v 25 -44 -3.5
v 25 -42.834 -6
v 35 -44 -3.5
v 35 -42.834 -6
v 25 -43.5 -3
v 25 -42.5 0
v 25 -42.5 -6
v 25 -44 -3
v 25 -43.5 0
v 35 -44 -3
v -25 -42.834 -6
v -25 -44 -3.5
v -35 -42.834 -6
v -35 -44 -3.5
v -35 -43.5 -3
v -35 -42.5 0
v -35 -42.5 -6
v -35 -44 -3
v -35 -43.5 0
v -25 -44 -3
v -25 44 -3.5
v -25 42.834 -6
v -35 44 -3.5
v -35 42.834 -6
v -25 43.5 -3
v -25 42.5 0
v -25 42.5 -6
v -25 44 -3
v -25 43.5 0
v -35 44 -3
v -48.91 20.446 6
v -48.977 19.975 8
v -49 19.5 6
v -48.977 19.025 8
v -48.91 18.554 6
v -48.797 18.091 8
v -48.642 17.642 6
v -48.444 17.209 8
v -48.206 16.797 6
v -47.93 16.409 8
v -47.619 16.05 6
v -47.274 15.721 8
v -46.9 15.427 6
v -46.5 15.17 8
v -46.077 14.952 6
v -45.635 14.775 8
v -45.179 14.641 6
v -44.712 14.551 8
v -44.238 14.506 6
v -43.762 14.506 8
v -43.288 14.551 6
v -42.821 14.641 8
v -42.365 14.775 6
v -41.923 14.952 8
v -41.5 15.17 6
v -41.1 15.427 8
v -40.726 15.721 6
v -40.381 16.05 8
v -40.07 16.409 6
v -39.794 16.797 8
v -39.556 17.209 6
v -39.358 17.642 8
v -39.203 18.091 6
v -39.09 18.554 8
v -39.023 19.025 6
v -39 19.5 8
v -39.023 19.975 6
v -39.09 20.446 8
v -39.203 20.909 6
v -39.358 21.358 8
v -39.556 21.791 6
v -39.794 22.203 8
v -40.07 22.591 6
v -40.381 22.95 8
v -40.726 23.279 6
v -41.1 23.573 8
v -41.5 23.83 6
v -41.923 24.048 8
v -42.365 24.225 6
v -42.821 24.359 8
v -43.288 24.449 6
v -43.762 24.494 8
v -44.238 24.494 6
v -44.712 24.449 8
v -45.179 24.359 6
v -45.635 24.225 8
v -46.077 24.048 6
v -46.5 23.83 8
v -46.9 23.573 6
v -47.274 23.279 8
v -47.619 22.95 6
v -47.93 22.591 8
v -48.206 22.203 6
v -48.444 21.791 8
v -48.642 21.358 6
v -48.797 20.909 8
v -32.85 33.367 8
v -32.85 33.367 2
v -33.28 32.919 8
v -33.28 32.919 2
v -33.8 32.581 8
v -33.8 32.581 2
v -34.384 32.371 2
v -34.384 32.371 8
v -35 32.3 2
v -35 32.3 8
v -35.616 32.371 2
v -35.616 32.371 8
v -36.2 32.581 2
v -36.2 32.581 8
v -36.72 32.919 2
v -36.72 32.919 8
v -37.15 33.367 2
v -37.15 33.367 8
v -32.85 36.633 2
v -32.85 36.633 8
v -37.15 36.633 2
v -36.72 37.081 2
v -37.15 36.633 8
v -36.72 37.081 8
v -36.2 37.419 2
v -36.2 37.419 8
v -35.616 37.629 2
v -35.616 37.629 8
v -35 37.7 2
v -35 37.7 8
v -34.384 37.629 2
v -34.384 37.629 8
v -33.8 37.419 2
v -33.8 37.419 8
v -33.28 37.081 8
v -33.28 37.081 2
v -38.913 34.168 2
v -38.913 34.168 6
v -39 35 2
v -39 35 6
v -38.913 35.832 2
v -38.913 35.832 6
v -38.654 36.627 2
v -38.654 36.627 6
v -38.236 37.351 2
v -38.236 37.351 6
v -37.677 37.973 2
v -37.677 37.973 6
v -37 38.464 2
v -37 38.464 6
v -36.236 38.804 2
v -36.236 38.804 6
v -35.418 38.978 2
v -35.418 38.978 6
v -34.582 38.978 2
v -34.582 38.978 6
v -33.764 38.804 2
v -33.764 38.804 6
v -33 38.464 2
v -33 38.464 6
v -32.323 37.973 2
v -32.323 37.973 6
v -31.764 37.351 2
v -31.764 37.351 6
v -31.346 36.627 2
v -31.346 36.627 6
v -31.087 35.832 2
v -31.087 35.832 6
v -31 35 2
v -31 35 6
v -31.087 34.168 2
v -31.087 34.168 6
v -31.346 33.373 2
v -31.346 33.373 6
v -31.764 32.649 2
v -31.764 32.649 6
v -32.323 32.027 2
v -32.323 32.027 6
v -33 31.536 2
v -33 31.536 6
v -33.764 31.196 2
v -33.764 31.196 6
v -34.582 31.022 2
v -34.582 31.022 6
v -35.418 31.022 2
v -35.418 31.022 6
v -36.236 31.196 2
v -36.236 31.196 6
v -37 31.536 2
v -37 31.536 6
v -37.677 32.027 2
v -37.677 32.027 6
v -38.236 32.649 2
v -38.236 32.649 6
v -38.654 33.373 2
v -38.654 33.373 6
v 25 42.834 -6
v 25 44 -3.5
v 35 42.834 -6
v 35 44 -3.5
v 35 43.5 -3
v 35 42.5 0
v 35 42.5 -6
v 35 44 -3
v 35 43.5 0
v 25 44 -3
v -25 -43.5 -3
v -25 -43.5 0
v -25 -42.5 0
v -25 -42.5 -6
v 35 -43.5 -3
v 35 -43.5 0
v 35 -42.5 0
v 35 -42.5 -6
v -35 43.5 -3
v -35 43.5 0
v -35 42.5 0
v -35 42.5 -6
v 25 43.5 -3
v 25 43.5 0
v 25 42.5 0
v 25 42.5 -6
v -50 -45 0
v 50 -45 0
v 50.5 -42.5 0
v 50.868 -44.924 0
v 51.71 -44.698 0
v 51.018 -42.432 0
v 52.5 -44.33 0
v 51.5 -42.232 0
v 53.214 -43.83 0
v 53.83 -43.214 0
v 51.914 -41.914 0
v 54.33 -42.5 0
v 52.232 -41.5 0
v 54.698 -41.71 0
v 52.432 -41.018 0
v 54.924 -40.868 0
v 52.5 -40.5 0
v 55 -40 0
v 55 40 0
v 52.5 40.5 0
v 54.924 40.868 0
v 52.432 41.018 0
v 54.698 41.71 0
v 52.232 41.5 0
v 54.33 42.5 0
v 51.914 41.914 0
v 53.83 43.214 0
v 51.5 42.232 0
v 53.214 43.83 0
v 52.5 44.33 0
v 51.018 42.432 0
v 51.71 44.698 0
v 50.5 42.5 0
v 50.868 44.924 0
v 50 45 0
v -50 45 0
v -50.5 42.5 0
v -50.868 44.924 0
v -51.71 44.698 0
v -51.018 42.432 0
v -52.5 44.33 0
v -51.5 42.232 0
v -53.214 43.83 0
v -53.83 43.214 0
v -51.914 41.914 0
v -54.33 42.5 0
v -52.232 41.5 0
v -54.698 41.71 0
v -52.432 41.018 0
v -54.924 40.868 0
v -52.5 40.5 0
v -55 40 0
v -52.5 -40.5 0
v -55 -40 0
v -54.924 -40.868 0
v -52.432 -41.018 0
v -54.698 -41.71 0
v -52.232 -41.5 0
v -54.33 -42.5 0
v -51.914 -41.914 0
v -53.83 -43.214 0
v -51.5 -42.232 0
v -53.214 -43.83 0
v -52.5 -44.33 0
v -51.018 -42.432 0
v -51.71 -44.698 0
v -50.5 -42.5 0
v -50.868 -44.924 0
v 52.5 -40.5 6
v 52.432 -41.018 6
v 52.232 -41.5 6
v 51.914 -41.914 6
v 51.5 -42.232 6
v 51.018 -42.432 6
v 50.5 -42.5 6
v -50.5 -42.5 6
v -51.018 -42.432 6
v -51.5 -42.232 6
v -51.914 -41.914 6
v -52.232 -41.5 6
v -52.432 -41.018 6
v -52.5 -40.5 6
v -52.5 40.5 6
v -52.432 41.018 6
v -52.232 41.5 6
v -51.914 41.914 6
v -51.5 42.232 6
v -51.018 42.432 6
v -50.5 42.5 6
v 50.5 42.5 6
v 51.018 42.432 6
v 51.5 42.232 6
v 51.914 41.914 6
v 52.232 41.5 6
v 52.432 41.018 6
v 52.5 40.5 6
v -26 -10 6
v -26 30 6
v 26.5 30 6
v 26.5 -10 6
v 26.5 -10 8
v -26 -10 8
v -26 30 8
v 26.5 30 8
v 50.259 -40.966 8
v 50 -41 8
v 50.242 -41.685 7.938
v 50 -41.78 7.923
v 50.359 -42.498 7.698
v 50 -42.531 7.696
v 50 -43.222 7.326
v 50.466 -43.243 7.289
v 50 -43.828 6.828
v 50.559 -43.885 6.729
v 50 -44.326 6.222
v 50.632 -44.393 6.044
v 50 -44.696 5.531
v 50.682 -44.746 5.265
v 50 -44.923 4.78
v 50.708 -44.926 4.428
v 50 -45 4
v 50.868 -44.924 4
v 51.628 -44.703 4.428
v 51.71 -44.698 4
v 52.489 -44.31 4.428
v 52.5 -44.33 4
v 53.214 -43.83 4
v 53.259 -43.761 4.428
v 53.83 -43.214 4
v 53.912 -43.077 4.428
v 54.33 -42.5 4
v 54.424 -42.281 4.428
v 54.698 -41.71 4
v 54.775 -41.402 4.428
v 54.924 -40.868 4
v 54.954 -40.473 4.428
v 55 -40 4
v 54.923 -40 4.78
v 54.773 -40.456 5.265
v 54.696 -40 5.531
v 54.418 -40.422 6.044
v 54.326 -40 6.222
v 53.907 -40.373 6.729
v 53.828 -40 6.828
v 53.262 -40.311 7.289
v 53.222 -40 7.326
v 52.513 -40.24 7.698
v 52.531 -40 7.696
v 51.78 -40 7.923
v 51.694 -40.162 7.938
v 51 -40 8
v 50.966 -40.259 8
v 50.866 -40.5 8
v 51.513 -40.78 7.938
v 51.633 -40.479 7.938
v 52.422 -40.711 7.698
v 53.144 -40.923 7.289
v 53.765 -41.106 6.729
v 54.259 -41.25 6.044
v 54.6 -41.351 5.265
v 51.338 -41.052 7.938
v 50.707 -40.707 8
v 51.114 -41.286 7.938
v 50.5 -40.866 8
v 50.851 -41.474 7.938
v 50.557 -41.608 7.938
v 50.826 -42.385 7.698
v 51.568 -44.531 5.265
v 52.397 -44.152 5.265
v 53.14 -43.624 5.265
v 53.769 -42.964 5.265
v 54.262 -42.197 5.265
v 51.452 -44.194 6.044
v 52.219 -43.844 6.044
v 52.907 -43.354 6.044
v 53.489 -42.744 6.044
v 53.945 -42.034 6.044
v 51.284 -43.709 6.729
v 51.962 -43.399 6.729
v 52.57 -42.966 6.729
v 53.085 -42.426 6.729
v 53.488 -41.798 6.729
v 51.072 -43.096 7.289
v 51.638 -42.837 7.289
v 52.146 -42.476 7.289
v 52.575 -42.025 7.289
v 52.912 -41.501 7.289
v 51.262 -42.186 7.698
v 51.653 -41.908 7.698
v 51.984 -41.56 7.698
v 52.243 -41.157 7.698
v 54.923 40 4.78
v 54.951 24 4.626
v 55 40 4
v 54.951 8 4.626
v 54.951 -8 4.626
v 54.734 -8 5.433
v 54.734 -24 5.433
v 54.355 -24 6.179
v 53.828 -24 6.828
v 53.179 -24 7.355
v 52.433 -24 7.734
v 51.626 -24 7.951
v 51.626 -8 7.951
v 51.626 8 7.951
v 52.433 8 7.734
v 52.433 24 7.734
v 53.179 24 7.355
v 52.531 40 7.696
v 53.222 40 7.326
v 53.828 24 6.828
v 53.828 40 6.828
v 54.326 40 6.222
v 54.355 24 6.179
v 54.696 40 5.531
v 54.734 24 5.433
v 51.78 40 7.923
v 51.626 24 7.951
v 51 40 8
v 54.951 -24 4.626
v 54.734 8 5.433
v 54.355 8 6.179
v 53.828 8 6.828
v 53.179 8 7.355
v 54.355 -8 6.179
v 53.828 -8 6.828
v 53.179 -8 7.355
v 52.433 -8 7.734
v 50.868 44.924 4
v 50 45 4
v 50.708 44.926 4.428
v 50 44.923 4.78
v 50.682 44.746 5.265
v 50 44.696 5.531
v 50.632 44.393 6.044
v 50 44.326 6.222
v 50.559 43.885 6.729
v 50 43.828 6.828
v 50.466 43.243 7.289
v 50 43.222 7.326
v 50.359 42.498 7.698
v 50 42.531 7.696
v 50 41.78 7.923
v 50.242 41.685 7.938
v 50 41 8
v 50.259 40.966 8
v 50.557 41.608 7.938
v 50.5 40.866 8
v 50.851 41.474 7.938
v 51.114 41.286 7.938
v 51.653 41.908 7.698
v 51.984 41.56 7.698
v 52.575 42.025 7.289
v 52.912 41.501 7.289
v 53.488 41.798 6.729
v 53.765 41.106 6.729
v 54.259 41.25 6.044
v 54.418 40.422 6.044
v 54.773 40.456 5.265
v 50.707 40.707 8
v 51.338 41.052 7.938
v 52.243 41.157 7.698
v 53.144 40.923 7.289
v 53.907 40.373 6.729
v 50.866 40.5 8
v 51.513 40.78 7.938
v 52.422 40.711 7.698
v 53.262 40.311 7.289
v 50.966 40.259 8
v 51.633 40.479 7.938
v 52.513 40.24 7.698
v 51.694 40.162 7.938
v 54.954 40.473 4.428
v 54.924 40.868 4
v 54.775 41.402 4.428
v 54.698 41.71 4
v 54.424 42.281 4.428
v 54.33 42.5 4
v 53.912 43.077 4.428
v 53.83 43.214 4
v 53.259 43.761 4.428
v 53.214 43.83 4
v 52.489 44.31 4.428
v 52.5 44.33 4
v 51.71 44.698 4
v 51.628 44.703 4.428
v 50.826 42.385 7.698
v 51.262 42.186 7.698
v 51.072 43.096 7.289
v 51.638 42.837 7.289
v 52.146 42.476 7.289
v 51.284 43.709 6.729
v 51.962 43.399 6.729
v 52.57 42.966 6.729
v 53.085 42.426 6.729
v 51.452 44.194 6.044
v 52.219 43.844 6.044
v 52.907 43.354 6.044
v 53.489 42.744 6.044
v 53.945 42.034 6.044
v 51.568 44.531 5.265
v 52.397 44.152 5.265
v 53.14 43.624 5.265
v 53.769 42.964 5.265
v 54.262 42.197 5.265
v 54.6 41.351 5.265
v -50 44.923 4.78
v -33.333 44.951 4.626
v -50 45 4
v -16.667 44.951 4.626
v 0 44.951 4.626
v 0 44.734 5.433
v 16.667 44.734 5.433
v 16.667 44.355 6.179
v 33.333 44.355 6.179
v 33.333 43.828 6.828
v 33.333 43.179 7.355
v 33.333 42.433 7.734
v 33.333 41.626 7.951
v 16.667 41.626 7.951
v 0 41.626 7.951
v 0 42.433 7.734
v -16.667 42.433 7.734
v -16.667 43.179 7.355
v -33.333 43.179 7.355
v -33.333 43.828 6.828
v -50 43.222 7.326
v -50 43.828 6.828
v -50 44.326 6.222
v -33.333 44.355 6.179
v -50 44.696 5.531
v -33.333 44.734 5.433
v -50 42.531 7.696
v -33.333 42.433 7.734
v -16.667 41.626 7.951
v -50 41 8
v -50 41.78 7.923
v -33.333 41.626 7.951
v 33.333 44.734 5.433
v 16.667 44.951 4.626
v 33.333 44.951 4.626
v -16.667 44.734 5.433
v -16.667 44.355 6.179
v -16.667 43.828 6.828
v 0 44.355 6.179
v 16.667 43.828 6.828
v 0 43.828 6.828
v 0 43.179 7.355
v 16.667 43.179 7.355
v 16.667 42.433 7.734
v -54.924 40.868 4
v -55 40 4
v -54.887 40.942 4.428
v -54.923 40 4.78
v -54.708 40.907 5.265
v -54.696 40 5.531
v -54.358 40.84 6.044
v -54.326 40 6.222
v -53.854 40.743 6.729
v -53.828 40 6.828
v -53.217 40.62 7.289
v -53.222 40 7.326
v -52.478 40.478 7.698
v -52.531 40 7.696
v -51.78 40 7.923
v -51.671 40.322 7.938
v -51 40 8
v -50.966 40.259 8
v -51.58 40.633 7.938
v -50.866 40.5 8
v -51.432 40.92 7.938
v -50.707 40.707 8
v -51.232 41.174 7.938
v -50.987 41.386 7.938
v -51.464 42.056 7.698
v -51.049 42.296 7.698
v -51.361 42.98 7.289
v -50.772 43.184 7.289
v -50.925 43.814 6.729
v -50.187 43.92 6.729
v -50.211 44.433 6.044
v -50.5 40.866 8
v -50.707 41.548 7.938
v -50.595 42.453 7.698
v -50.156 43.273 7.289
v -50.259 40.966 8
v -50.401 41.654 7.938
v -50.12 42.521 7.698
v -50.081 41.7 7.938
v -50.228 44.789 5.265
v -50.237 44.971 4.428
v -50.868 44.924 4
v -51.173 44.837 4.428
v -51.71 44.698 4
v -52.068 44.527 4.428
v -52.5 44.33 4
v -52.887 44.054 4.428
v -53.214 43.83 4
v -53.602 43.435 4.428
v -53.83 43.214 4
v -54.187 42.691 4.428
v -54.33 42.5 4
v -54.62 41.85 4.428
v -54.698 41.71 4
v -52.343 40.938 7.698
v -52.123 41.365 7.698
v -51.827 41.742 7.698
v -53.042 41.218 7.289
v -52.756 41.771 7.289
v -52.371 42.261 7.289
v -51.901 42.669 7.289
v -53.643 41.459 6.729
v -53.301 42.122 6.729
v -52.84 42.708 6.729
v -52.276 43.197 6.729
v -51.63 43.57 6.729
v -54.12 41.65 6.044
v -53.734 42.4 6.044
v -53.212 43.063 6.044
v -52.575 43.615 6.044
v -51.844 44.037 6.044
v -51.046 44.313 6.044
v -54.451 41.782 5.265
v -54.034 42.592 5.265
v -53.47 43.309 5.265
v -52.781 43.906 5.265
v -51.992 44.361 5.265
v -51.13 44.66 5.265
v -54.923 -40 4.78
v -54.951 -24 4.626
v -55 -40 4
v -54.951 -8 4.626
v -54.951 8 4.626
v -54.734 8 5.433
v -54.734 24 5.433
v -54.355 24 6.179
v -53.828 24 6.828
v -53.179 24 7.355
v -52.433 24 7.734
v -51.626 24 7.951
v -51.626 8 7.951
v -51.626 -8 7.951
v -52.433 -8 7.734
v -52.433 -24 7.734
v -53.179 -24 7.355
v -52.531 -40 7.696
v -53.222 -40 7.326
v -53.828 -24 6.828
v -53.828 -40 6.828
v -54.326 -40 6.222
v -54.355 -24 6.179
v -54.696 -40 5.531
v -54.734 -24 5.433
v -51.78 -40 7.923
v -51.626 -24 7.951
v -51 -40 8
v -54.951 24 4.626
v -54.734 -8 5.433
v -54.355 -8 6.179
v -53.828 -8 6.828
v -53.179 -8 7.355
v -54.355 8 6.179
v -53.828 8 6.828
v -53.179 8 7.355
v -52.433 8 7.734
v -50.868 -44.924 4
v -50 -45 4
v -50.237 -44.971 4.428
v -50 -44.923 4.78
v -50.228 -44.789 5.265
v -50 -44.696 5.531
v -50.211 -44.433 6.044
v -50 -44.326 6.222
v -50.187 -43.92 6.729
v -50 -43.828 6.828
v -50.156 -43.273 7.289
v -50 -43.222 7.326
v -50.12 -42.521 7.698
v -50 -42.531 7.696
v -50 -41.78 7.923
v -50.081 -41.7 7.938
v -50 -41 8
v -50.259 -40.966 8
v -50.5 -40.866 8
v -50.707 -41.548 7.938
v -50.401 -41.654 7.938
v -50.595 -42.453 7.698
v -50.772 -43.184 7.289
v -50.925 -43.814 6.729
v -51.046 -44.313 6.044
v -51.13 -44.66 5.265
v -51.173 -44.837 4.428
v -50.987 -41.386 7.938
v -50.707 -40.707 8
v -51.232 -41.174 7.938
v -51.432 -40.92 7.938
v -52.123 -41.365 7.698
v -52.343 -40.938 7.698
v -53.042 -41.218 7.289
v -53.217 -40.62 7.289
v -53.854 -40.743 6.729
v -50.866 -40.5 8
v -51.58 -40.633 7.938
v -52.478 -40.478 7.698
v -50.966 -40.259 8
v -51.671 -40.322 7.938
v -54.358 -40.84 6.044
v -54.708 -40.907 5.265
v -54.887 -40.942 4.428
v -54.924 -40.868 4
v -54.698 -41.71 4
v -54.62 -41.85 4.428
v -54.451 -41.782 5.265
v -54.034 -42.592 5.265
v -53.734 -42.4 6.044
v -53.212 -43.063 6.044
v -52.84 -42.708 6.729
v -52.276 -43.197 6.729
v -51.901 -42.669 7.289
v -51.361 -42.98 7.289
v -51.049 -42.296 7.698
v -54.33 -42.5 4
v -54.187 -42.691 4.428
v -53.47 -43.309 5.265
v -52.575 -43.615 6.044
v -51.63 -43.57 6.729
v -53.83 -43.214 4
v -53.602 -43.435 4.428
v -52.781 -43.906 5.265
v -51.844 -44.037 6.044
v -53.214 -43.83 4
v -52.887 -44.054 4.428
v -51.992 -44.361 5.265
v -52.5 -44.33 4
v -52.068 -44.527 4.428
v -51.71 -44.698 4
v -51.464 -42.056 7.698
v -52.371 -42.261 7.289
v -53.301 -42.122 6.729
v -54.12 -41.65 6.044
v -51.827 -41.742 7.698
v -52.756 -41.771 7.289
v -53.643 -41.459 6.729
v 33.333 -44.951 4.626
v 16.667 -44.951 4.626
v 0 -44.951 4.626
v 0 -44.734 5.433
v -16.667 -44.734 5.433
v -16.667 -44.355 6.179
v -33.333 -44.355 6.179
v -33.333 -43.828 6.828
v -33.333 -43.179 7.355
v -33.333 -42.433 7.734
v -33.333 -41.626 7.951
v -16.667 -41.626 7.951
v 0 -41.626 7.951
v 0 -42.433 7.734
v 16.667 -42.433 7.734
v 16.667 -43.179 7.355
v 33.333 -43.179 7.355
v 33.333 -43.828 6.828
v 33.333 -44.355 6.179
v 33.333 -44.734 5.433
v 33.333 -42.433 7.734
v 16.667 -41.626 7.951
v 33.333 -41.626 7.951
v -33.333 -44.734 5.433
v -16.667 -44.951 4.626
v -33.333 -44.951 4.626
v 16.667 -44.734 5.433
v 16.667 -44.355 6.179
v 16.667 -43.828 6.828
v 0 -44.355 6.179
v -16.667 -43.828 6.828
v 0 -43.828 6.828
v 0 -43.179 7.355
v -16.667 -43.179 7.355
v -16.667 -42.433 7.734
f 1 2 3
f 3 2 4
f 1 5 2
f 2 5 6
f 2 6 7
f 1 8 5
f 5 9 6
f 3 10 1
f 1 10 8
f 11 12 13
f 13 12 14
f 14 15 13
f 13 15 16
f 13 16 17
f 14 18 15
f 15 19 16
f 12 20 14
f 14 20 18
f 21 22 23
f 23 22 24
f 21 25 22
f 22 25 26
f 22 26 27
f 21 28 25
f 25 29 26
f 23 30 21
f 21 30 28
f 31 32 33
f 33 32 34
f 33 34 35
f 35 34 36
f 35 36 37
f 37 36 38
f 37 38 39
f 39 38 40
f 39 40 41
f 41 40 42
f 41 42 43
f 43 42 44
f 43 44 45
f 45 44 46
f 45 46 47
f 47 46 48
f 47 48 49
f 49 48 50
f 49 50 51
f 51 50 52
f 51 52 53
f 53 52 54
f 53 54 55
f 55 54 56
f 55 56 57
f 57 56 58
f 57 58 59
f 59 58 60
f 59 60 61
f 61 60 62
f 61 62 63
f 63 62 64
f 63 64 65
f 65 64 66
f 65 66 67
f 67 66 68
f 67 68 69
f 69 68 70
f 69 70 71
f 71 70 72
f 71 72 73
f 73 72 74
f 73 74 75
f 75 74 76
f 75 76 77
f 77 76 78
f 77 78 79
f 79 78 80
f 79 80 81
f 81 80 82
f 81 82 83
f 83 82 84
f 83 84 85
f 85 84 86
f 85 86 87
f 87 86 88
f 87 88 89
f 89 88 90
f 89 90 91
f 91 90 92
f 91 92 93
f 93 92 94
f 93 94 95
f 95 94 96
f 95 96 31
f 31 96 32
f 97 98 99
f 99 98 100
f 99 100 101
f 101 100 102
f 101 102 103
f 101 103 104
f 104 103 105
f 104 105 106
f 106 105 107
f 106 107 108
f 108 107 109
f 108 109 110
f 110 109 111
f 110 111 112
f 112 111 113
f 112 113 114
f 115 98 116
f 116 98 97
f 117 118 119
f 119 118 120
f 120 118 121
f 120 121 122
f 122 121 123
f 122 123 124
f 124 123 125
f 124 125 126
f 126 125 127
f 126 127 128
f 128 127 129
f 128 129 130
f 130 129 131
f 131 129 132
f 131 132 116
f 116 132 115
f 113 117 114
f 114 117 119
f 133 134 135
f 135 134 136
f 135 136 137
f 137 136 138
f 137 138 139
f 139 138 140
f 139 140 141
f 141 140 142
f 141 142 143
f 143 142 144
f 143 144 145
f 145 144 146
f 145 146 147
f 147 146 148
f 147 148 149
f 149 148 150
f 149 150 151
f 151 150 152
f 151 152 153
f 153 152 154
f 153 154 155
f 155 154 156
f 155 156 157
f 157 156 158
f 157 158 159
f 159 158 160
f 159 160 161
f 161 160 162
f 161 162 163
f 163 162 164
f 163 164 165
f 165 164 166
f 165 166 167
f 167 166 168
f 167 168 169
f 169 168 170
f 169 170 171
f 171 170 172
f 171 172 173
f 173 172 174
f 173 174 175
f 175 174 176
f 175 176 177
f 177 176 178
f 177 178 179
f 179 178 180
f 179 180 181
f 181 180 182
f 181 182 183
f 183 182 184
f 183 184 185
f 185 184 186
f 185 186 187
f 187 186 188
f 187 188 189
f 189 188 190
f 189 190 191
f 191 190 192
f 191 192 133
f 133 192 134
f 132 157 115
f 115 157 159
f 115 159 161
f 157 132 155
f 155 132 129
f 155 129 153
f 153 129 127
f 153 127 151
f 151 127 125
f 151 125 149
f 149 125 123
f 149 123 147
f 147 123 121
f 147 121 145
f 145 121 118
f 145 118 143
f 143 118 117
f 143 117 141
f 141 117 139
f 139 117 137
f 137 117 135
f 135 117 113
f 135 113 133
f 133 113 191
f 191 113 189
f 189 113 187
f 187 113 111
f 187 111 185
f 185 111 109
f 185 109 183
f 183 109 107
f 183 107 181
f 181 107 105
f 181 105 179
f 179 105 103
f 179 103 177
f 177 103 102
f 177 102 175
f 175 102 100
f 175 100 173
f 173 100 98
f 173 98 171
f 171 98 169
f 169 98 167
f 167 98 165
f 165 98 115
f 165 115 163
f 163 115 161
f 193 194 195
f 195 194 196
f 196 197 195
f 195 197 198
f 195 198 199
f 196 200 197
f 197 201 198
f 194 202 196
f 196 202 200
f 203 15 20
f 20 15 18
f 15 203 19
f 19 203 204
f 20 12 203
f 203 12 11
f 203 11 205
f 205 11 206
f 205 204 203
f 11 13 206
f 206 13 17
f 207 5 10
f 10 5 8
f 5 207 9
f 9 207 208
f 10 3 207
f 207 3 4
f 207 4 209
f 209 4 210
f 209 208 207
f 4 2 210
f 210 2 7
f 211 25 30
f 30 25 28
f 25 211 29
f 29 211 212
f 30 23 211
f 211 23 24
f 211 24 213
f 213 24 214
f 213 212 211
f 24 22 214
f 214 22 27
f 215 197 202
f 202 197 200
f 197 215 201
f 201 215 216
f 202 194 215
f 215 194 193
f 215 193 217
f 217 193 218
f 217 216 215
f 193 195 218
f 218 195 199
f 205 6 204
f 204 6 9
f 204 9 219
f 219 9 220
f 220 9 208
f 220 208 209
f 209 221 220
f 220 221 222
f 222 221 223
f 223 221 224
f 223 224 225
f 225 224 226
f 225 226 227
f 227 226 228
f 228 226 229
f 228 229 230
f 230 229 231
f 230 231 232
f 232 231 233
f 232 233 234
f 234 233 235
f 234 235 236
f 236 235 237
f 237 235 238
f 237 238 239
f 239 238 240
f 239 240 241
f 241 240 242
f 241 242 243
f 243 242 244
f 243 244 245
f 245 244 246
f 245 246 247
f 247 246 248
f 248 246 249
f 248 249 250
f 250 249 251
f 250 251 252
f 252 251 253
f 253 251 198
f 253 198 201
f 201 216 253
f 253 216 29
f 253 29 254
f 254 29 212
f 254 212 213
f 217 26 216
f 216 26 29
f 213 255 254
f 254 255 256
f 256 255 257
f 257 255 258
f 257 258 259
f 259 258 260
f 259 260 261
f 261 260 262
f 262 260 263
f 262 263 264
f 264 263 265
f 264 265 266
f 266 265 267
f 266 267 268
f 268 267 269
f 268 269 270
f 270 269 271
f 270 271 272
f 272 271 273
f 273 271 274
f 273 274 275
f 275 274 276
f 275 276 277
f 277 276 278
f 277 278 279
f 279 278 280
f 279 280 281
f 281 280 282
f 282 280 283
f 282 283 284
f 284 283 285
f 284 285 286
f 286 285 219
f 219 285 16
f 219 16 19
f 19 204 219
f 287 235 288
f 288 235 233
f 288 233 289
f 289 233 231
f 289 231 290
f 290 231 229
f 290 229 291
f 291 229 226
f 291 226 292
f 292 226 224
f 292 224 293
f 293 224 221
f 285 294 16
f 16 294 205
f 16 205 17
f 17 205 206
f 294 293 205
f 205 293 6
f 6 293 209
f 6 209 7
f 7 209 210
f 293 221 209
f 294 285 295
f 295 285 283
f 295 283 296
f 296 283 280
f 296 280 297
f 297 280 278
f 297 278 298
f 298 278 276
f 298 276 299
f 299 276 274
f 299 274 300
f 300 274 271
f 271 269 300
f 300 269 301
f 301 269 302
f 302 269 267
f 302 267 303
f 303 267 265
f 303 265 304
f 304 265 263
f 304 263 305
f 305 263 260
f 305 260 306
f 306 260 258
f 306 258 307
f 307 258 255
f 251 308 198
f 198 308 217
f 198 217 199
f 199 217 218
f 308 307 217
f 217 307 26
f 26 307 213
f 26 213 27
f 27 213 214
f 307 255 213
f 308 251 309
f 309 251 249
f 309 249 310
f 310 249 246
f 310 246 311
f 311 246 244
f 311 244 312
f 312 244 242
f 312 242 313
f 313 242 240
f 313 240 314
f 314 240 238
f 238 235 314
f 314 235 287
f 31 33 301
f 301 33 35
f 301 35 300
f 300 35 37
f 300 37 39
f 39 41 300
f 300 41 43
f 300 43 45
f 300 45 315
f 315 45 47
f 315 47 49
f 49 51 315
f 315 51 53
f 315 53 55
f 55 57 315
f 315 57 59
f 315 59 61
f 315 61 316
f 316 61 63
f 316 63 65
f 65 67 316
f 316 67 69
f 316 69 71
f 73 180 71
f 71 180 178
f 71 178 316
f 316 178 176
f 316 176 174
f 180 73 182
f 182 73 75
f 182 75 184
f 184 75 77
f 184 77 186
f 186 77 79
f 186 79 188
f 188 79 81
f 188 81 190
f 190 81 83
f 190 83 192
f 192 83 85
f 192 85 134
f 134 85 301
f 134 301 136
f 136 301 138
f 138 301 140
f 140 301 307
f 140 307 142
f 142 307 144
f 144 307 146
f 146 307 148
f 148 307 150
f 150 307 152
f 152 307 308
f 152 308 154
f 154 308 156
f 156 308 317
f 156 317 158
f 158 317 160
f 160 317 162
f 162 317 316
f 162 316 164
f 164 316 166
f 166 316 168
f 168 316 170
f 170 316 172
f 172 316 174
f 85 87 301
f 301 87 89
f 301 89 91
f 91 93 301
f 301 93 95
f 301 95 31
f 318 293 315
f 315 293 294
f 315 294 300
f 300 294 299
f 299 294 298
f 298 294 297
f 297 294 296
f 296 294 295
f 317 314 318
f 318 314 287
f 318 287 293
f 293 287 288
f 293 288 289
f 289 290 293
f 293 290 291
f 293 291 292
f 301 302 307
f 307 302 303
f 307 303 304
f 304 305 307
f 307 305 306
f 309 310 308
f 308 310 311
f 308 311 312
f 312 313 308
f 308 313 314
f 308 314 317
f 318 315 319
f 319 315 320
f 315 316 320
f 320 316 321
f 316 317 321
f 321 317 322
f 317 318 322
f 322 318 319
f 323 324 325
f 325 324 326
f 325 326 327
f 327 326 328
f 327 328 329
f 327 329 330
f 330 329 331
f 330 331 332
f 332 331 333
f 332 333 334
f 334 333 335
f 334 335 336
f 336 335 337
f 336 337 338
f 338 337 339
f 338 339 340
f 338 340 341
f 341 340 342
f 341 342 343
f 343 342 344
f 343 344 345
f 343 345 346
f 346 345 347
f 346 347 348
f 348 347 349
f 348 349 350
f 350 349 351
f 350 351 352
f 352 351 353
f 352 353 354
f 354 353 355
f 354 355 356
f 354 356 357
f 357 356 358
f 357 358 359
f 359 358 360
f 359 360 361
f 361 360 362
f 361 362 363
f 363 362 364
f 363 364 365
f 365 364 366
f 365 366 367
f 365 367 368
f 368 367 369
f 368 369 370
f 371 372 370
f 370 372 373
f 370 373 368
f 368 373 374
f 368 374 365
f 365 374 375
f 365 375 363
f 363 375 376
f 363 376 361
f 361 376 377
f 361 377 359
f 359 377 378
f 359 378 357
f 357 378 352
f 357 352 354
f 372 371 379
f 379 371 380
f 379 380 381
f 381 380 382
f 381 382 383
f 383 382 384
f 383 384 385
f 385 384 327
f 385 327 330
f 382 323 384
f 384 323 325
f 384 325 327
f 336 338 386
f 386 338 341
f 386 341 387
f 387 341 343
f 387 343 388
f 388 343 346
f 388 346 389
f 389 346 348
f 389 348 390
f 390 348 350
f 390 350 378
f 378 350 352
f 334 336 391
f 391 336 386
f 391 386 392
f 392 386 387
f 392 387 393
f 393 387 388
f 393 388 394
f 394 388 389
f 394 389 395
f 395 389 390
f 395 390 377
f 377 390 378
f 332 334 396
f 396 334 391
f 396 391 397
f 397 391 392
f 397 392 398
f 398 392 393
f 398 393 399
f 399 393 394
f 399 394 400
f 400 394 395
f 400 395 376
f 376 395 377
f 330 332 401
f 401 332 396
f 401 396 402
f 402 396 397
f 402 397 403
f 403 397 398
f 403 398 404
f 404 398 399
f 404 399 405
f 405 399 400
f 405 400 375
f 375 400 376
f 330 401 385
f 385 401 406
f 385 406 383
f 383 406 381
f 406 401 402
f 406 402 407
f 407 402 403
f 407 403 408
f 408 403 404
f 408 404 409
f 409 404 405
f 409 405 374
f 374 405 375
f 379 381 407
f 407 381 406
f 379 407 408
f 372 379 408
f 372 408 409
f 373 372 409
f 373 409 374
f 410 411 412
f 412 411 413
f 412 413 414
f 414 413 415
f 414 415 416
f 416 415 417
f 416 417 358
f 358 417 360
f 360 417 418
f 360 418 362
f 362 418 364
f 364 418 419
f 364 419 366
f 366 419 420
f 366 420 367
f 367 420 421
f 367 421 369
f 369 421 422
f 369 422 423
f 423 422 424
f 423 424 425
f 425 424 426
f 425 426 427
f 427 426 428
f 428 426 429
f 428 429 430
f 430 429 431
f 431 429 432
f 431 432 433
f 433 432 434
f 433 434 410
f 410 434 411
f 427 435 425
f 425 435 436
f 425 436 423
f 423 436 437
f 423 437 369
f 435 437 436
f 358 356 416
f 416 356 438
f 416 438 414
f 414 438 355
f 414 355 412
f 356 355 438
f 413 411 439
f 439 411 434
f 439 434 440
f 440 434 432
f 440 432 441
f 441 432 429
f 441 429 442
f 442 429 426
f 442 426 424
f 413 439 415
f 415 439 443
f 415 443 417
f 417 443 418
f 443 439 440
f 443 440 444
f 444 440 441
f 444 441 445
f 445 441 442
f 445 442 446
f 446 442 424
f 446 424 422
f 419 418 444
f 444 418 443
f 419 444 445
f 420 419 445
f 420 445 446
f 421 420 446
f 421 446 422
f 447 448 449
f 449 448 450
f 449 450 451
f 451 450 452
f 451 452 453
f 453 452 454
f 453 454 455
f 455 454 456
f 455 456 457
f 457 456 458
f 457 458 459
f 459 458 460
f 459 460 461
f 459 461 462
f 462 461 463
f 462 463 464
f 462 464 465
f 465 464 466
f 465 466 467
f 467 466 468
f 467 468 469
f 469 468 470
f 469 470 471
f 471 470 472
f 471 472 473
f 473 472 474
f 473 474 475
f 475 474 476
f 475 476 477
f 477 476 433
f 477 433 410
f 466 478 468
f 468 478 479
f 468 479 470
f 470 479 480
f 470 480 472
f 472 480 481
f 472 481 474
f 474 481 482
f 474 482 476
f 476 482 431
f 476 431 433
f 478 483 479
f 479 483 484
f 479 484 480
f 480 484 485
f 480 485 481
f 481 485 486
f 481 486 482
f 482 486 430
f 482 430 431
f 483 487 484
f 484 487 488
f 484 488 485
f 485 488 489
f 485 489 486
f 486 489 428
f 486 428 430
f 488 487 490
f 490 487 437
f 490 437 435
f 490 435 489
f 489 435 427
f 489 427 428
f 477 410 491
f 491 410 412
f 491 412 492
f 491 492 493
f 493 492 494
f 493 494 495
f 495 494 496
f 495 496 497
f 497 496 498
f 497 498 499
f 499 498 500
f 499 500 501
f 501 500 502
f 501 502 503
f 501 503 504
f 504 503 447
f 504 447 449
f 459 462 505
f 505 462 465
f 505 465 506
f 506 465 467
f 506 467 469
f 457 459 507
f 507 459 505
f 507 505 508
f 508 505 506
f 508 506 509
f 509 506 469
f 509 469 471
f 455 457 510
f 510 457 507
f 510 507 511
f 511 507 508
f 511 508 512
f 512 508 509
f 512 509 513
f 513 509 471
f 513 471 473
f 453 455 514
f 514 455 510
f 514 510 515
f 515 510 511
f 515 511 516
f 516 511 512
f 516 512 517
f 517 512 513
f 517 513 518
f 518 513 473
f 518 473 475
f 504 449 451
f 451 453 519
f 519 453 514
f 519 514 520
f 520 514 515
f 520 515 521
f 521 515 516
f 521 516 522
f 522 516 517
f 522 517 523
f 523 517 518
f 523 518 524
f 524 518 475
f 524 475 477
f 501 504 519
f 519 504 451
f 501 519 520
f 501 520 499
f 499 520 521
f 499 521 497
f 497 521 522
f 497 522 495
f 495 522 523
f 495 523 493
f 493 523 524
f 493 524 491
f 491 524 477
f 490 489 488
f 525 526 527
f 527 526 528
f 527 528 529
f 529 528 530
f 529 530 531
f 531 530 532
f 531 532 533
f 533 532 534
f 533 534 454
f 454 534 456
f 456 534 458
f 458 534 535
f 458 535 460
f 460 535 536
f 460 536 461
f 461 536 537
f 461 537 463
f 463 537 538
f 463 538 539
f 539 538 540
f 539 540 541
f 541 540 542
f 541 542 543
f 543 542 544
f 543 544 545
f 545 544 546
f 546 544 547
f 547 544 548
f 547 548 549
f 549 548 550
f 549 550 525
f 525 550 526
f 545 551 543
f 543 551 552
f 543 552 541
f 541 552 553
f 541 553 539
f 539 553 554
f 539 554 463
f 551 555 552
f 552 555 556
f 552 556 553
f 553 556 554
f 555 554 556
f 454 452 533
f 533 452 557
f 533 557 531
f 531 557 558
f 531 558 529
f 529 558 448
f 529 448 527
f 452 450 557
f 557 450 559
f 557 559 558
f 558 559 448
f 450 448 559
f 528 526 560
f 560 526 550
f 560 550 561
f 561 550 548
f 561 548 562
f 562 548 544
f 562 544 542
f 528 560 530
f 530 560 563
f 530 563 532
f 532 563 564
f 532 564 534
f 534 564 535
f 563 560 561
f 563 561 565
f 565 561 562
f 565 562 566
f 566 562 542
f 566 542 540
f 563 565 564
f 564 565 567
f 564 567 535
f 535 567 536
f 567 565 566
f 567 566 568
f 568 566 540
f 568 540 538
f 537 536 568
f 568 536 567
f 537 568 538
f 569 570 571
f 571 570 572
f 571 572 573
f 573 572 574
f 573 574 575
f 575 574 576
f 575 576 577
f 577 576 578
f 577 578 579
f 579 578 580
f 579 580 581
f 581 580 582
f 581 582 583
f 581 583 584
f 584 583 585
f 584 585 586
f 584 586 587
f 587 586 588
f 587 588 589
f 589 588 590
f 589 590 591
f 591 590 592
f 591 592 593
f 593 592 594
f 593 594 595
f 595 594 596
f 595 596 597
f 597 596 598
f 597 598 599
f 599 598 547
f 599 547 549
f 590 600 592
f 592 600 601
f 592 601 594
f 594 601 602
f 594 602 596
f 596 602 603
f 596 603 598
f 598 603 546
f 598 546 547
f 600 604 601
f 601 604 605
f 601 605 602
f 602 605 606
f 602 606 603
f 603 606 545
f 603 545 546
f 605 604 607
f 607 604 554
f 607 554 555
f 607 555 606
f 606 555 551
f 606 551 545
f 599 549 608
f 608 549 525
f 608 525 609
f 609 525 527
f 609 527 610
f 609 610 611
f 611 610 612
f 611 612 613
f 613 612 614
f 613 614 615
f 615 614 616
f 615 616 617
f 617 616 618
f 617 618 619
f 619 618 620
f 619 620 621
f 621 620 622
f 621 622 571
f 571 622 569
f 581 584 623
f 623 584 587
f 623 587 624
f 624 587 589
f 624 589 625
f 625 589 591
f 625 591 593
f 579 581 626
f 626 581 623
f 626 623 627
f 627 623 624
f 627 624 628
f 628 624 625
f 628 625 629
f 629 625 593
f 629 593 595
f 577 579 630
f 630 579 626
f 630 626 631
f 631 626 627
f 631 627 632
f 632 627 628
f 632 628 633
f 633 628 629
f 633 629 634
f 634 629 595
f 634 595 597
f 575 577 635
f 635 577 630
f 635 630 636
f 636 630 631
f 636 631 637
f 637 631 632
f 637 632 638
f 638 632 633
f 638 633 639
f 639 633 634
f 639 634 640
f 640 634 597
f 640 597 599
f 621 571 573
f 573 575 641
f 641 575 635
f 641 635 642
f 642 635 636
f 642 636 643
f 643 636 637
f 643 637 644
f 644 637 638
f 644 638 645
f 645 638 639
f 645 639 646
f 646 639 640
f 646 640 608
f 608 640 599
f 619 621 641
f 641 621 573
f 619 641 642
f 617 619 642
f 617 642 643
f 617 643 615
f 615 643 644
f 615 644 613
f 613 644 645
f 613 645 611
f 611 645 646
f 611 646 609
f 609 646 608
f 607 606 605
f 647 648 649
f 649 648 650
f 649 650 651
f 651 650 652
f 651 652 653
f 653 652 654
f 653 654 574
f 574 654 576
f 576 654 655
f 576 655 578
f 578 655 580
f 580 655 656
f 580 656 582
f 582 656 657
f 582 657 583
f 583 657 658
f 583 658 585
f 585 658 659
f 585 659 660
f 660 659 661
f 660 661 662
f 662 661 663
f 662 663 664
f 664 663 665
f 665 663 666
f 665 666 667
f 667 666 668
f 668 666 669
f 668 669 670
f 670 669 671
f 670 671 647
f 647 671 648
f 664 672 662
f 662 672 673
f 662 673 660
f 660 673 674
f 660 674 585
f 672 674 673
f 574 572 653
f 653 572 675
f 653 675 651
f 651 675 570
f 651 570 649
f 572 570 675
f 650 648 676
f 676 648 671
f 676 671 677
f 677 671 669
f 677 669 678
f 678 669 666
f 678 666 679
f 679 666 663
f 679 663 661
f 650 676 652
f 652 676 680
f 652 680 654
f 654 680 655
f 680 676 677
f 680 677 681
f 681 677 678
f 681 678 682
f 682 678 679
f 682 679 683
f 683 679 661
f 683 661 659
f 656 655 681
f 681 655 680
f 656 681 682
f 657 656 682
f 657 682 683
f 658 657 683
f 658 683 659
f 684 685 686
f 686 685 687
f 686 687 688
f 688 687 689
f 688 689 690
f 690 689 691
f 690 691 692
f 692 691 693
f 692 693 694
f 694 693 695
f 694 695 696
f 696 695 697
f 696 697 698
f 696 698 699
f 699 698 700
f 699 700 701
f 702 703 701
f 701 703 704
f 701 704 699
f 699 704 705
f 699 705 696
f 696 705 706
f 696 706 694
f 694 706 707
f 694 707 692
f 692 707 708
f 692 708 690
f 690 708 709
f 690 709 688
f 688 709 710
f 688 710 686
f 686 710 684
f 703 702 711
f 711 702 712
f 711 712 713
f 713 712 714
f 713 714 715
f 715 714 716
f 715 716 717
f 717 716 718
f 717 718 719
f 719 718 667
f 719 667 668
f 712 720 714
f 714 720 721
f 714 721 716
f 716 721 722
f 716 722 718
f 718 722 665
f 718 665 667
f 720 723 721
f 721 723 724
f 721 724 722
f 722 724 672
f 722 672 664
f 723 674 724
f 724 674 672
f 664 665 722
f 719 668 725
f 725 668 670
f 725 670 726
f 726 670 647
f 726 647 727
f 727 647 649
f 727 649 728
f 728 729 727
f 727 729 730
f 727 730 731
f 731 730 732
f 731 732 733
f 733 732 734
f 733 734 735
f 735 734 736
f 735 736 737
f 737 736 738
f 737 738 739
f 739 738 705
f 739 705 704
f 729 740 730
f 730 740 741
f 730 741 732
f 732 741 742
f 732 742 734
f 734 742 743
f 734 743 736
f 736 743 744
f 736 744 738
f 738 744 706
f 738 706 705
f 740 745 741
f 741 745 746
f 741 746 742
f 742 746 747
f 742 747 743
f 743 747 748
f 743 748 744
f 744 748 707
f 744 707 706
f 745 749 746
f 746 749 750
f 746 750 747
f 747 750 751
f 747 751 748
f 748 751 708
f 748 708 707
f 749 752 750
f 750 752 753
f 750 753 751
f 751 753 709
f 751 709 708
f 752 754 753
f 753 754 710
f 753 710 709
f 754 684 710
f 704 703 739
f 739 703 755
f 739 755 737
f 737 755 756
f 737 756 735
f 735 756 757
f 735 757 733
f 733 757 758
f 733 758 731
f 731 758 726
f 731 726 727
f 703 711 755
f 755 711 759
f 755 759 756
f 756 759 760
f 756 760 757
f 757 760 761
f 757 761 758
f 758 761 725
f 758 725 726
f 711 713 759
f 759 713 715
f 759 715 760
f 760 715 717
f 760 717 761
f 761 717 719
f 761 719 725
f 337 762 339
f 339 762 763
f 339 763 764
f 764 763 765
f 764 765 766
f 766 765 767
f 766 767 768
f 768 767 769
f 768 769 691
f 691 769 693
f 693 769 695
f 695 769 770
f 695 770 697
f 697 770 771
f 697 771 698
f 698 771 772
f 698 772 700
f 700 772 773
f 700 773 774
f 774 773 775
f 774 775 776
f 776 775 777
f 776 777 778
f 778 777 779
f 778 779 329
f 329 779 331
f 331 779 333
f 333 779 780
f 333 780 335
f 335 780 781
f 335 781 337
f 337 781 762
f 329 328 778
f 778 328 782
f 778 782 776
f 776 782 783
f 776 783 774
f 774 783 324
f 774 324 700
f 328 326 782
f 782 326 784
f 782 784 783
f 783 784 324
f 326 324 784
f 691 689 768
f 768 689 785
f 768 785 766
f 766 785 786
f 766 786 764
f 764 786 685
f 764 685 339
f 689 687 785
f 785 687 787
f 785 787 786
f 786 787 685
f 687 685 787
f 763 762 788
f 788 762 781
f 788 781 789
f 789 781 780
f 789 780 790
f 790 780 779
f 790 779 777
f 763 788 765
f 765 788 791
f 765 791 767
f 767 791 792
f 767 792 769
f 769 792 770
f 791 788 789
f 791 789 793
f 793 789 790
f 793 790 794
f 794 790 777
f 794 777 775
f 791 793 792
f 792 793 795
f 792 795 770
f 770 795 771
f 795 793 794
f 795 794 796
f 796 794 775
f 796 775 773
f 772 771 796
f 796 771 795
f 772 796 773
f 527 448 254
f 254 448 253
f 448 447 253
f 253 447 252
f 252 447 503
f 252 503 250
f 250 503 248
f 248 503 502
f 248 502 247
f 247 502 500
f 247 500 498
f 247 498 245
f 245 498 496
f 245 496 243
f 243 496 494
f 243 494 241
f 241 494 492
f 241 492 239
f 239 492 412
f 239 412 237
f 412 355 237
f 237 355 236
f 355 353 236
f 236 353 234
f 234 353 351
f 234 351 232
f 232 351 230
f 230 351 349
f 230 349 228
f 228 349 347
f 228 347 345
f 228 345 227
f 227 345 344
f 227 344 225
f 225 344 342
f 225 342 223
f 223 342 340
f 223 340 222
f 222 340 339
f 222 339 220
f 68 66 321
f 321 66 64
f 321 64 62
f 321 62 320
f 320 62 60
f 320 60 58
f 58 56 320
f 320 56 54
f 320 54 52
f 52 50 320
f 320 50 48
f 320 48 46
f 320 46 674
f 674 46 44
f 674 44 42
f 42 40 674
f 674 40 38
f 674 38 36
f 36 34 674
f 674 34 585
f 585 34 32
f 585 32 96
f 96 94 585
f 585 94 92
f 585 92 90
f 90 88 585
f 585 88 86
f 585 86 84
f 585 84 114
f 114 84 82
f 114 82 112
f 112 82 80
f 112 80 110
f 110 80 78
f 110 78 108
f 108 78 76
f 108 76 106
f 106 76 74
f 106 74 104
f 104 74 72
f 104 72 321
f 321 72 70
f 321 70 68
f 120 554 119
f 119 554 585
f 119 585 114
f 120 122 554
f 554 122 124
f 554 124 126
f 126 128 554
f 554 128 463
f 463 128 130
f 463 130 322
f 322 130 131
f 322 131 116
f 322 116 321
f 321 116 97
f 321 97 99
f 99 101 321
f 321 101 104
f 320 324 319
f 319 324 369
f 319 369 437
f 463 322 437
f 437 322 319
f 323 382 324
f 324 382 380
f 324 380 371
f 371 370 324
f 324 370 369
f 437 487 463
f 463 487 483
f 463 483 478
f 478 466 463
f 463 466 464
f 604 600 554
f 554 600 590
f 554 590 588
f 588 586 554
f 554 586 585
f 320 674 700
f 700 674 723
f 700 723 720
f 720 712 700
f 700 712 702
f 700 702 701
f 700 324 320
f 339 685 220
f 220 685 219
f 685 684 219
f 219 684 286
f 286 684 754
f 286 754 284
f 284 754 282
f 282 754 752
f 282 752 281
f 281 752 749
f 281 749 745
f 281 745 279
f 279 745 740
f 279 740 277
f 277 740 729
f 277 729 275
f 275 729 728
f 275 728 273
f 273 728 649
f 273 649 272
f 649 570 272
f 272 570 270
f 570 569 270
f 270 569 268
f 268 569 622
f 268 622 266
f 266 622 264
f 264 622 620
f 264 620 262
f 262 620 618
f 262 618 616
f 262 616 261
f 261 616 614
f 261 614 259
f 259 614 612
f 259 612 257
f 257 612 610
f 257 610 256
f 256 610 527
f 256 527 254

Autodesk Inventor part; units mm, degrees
ref_plane "YZ Plane" through (0, 0, 0) normal (1, 0, 0) x (0, 1, 0)
ref_plane "XZ Plane" through (0, 0, 0) normal (0, 1, 0) x (-1, 0, 0)
ref_plane "XY Plane" through (0, 0, 0) normal (0, 0, 1) x (1, 0, 0)
sketch "Esquisse2" plane through (0, 0, 0) normal (0, 0, 1) x (1, 0, 0)
  line L0 (-78.4497, 0) -> (78.4497, 0) construction
  line L1 (0, -64.4497) -> (0, 64.4497) construction
  line L2 (-50, -45) -> (50, -45)
  line L3 (55, -40) -> (55, 40)
  line L4 (50, 45) -> (-50, 45)
  line L5 (-55, 40) -> (-55, -40)
  line L6 (-55, -45) -> (55, 45) construction
  line L7 (55, -45) -> (-55, 45) construction
  arc A0 (-50, 45) -> (-55, 40) centre (-50, 40) ccw
  arc A1 (-55, -40) -> (-50, -45) centre (-50, -40) ccw
  arc A2 (50, -45) -> (55, -40) centre (50, -40) ccw
  arc A3 (55, 40) -> (50, 45) centre (50, 40) ccw
  point P0 (0, 0)
  dimension "d0" = 110
  dimension "d1" = 90
  dimension "d2" = 5
extrude "Extrusion1" add sketch "Esquisse2" along normal blind 8
fillet "Congé1" radius 4 8 edges at (53.5355, -43.5355, 8) (55, 0, 8) (53.5355, 43.5355, 8) (0, 45, 8) (-53.5355, 43.5355, 8) (-55, 0, 8) (-53.5355, -43.5355, 8) (0, -45, 8)
sketch "Esquisse3" plane through (0, 0, 8) normal (0, 0, 1) x (1, 0, 0)
  line L0 (-83, 0) -> (78, 0) construction
  line L1 (0, -64) -> (0, 69) construction
  line L2 (50, 45) -> (-50, 45) construction
  line L3 (-55, 40) -> (-55, -40) construction
  line L4 (-55, 45) -> (-26, 45) construction
  line L5 (-26, 45) -> (-26, 30) construction
  line L6 (-26, 30) -> (-55, 30) construction
  line L7 (-55, 30) -> (-55, 45) construction
  line L8 (-26, 30) -> (26.5, 30)
  line L9 (26.5, 30) -> (26.5, -10)
  line L10 (26.5, -10) -> (-26, -10)
  line L11 (-26, -10) -> (-26, 30)
  point P0 (0, 0)
  dimension "d6" = 29
  dimension "d7" = 15
  dimension "d8" = 52.5
  dimension "d9" = 40
extrude "Extrusion2" cut sketch "Esquisse3" against normal through all
sketch "Esquisse4" plane through (0, 0, 0) normal (0, 0, -1) x (-1, 0, 0)
  line L0 (0, -71.6569) -> (0, 72.6924) construction
  line L1 (86.6924, 0) -> (-85.6569, 0) construction
  line L2 (-50.5, -42.5) -> (50.5, -42.5)
  line L3 (52.5, -40.5) -> (52.5, 40.5)
  line L4 (50.5, 42.5) -> (-50.5, 42.5)
  line L5 (-52.5, 40.5) -> (-52.5, -40.5)
  line L6 (-52.5, -42.5) -> (52.5, 42.5) construction
  line L7 (52.5, -42.5) -> (-52.5, 42.5) construction
  arc A0 (-50.5, 42.5) -> (-52.5, 40.5) centre (-50.5, 40.5) ccw
  arc A1 (-52.5, -40.5) -> (-50.5, -42.5) centre (-50.5, -40.5) ccw
  arc A2 (50.5, -42.5) -> (52.5, -40.5) centre (50.5, -40.5) ccw
  arc A3 (52.5, 40.5) -> (50.5, 42.5) centre (50.5, 40.5) ccw
  line L8 (-26.5, -10) -> (-26.5, 30) construction
  line L9 (-26.5, 30) -> (26, 30) construction
  line L10 (26, 30) -> (26, -10) construction
  line L11 (26, -10) -> (-26.5, -10) construction
  arc A4 (50, -45) -> (55, -40) centre (50, -40) ccw construction
  line L12 (55, 40) -> (55, -40) construction
  arc A5 (55, 40) -> (50, 45) centre (50, 40) ccw construction
  line L13 (-50, 45) -> (50, 45) construction
  arc A6 (-50, 45) -> (-55, 40) centre (-50, 40) ccw construction
  line L14 (-55, -40) -> (-55, 40) construction
  arc A7 (-55, -40) -> (-50, -45) centre (-50, -40) ccw construction
  line L15 (50, -45) -> (-50, -45) construction
  line L16 (55, 40) -> (55, -40) construction
  line L17 (-50, 45) -> (50, 45) construction
  point P0 (0, 0)
  dimension "d12" = 105
  dimension "d13" = 85
  dimension "d14" = 2
extrude "Extrusion3" cut sketch "Esquisse4" against normal blind 6
sketch "Esquisse5" plane through (0, 0, 0) normal (0, 0, -1) x (-1, 0, 0)
  line L0 (0, -71.6569) -> (0, 72.6924) construction
  line L1 (85.6569, 0) -> (-86.6924, 0) construction
  line L2 (-52.5, -40.5) -> (-52.5, 40.5) construction
  arc A0 (-50.5, 42.5) -> (-52.5, 40.5) centre (-50.5, 40.5) ccw construction
  line L3 (-50.5, 42.5) -> (50.5, 42.5) construction
  arc A1 (52.5, 40.5) -> (50.5, 42.5) centre (50.5, 40.5) ccw construction
  line L4 (52.5, 40.5) -> (52.5, -40.5) construction
  arc A2 (50.5, -42.5) -> (52.5, -40.5) centre (50.5, -40.5) ccw construction
  line L5 (50.5, -42.5) -> (-50.5, -42.5) construction
  arc A3 (-52.5, -40.5) -> (-50.5, -42.5) centre (-50.5, -40.5) ccw construction
  arc A4 (50, -45) -> (55, -40) centre (50, -40) ccw construction
  line L6 (55, 40) -> (55, -40) construction
  arc A5 (55, 40) -> (50, 45) centre (50, 40) ccw construction
  line L7 (-50, 45) -> (50, 45) construction
  arc A6 (-50, 45) -> (-55, 40) centre (-50, 40) ccw construction
  line L8 (-55, -40) -> (-55, 40) construction
  arc A7 (-55, -40) -> (-50, -45) centre (-50, -40) ccw construction
  line L9 (50, -45) -> (-50, -45) construction
  line L10 (-55, 45) -> (-35, 45) construction
  line L11 (-35, 45) -> (-35, 42.5) construction
  line L12 (-35, 42.5) -> (-55, 42.5) construction
  line L13 (-55, 42.5) -> (-55, 45) construction
  line L14 (-55, -40) -> (-55, 40) construction
  line L15 (-50, 45) -> (50, 45) construction
  line L16 (-35, 42.5) -> (-25, 42.5)
  line L17 (-25, 42.5) -> (-25, 43.5)
  line L18 (-25, 43.5) -> (-35, 43.5)
  line L19 (-35, 43.5) -> (-35, 42.5)
  point P0 (0, 0)
  dimension "d17" = 20
  dimension "d18" = 2.5
  dimension "d19" = 10
  dimension "d20" = 1
extrude "Extrusion4" add sketch "Esquisse5" along normal blind 6
sketch "Esquisse6" plane through (25, 43.5, 0) normal (0, 1, 0) x (1, 0, 0)
  line L0 (10, 0) -> (0, 0) construction
  line L1 (10, 0) -> (10, 6) construction
  line L2 (0, 6) -> (10, 6) construction
  line L3 (0, 0) -> (0, 6) construction
  line L4 (0, 6) -> (10, 6)
  line L5 (10, 6) -> (10, 3)
  line L6 (10, 3) -> (0, 3)
  line L7 (0, 3) -> (0, 6)
  point P0 (-25, 0)
  dimension "d23" = 3
extrude "Extrusion5" add sketch "Esquisse6" along normal blind 0.5
mirror "Symétrie1" about plane through (0, 0, 0) normal (1, 0, 0) of "Extrusion4", "Extrusion5"
mirror "Symétrie2" about plane through (0, 0, 0) normal (0, 1, 0) of "Extrusion4", "Extrusion5", "Symétrie1"
chamfer "Chanfrein1" distance 2.5 angle 25 1 edges at (30, 44, -6) measured on face at (28.3333, 44, -5)
sketch "Esquisse9" plane through (0, 0, 6) normal (0, 0, -1) x (-1, 0, 0)
  line L0 (35, -42.5) -> (35, -43.5) construction
  line L1 (25, -43.5) -> (25, -42.5) construction
  line L2 (-25, -42.5) -> (-25, -43.5) construction
  line L3 (-35, -43.5) -> (-35, -42.5) construction
  line L4 (25, 42.5) -> (25, 43.5) construction
  line L5 (35, 43.5) -> (35, 42.5) construction
  line L6 (-35, 42.5) -> (-35, 43.5) construction
  line L7 (-25, 43.5) -> (-25, 42.5) construction
  arc A0 (52.5, 40.5) -> (50.5, 42.5) centre (50.5, 40.5) ccw construction
  line L8 (52.5, 40.5) -> (52.5, -40.5) construction
  arc A1 (50.5, -42.5) -> (52.5, -40.5) centre (50.5, -40.5) ccw construction
  line L9 (50.5, -42.5) -> (35, -42.5) construction
  arc A2 (-52.5, -40.5) -> (-50.5, -42.5) centre (-50.5, -40.5) ccw construction
  line L10 (-52.5, -40.5) -> (-52.5, 40.5) construction
  arc A3 (-50.5, 42.5) -> (-52.5, 40.5) centre (-50.5, 40.5) ccw construction
  line L11 (-50.5, 42.5) -> (-35, 42.5) construction
  arc A4 (50, -45) -> (55, -40) centre (50, -40) ccw construction
  line L12 (55, 40) -> (55, -40) construction
  arc A5 (55, 40) -> (50, 45) centre (50, 40) ccw construction
  line L13 (-50, 45) -> (50, 45) construction
  arc A6 (-50, 45) -> (-55, 40) centre (-50, 40) ccw construction
  line L14 (-55, -40) -> (-55, 40) construction
  arc A7 (-55, -40) -> (-50, -45) centre (-50, -40) ccw construction
  line L15 (50, -45) -> (-50, -45) construction
  line L16 (55, 40) -> (55, -40) construction
  line L17 (-50, 45) -> (50, 45) construction
  circle A8 centre (35, 35) radius 4
  line L18 (78.4497, 0) -> (-78.4497, 0) construction
  line L19 (0, -64.4497) -> (0, 64.4497) construction
  line L20 (0, 0) -> (35, 0) construction
  line L21 (35, 0) -> (35, 35) construction
  line L22 (35, 35) -> (0, 35) construction
  line L23 (0, 35) -> (0, 0) construction
  line L24 (35, -43.5) -> (25, -43.5) projected
  line L25 (-25, -43.5) -> (-35, -43.5) projected
  line L26 (25, 43.5) -> (35, 43.5) projected
  line L27 (-35, 43.5) -> (-25, 43.5) projected
  line L28 (25, -42.5) -> (-25, -42.5) projected
  line L29 (-35, -42.5) -> (-50.5, -42.5) projected
  line L30 (-25, 42.5) -> (25, 42.5) projected
  line L31 (35, 42.5) -> (50.5, 42.5) projected
  dimension "d49" = 8
  dimension "d52" = 35
  dimension "d53" = 35
extrude "Extrusion7" add sketch "Esquisse9" along normal blind 4
sketch "Esquisse7" plane through (0, 0, 8) normal (0, 0, 1) x (1, 0, 0)
  circle A0 centre (-44, 19.5) radius 5
  circle A1 centre (-35, 35) radius 2.7
  line L0 (0, 0) -> (-35, 0) construction
  line L1 (-35, 0) -> (-35, 35) construction
  line L2 (-35, 35) -> (0, 35) construction
  line L3 (0, 35) -> (0, 0) construction
  line L4 (-35, 35) -> (-37.15, 35) construction
  line L5 (-37.15, 33.3668) -> (-37.15, 36.6332)
  line L6 (-32.85, 33.3668) -> (-32.85, 36.6332)
  line L7 (0, 0) -> (-44, 0) construction
  line L8 (-44, 0) -> (-44, 19.5) construction
  line L9 (-44, 19.5) -> (0, 19.5) construction
  line L10 (0, 19.5) -> (0, 0) construction
  dimension "d34" = 10
  dimension "d39" = 5.4
  dimension "d54" = 35
  dimension "d55" = 35
  dimension "d56" = 2.15
  dimension "d57" = 44
  dimension "d58" = 19.5
extrude "Extrusion6" cut sketch "Esquisse7" against normal through all contours A0 | L6 A1 L5
sketch "Esquisse11" plane through (0, 0, 8) normal (0, 0, 1) x (1, 0, 0)
  point P0 (0, 0)
chamfer "Chanfrein3" distance 2.5 angle 25 1 edges at (-30, 44, -6) measured on face at (-28.3333, 44, -5)
chamfer "Chanfrein4" distance 2.5 angle 25 1 edges at (-30, -44, -6) measured on face at (-28.3333, -44, -5)
chamfer "Chanfrein5" distance 2.5 angle 25 1 edges at (30, -44, -6) measured on face at (28.3333, -44, -5)
properties part number "_Impression 3D"
